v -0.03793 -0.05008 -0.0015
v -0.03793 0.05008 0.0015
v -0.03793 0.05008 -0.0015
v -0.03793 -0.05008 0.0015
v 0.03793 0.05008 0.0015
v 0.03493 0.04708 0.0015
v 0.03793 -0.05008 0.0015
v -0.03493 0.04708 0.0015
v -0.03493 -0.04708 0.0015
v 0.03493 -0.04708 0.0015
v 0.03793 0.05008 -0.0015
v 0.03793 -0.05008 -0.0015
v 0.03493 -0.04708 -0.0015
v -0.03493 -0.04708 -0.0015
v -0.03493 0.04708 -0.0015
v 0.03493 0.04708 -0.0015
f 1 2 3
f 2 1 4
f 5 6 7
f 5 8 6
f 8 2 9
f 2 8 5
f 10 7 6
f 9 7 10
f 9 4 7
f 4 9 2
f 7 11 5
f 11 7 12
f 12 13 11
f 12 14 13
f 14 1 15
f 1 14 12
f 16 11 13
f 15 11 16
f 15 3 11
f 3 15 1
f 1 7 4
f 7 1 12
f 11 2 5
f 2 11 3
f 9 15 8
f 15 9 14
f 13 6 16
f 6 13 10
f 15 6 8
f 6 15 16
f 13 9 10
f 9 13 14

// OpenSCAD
thickness = 0.003;
frame_size = [0.072864, 0.097152, thickness];

difference() {
    cube(frame_size + [thickness, thickness, 0], center=true);
    cube(frame_size - [thickness, thickness, -1], center=true);
}
